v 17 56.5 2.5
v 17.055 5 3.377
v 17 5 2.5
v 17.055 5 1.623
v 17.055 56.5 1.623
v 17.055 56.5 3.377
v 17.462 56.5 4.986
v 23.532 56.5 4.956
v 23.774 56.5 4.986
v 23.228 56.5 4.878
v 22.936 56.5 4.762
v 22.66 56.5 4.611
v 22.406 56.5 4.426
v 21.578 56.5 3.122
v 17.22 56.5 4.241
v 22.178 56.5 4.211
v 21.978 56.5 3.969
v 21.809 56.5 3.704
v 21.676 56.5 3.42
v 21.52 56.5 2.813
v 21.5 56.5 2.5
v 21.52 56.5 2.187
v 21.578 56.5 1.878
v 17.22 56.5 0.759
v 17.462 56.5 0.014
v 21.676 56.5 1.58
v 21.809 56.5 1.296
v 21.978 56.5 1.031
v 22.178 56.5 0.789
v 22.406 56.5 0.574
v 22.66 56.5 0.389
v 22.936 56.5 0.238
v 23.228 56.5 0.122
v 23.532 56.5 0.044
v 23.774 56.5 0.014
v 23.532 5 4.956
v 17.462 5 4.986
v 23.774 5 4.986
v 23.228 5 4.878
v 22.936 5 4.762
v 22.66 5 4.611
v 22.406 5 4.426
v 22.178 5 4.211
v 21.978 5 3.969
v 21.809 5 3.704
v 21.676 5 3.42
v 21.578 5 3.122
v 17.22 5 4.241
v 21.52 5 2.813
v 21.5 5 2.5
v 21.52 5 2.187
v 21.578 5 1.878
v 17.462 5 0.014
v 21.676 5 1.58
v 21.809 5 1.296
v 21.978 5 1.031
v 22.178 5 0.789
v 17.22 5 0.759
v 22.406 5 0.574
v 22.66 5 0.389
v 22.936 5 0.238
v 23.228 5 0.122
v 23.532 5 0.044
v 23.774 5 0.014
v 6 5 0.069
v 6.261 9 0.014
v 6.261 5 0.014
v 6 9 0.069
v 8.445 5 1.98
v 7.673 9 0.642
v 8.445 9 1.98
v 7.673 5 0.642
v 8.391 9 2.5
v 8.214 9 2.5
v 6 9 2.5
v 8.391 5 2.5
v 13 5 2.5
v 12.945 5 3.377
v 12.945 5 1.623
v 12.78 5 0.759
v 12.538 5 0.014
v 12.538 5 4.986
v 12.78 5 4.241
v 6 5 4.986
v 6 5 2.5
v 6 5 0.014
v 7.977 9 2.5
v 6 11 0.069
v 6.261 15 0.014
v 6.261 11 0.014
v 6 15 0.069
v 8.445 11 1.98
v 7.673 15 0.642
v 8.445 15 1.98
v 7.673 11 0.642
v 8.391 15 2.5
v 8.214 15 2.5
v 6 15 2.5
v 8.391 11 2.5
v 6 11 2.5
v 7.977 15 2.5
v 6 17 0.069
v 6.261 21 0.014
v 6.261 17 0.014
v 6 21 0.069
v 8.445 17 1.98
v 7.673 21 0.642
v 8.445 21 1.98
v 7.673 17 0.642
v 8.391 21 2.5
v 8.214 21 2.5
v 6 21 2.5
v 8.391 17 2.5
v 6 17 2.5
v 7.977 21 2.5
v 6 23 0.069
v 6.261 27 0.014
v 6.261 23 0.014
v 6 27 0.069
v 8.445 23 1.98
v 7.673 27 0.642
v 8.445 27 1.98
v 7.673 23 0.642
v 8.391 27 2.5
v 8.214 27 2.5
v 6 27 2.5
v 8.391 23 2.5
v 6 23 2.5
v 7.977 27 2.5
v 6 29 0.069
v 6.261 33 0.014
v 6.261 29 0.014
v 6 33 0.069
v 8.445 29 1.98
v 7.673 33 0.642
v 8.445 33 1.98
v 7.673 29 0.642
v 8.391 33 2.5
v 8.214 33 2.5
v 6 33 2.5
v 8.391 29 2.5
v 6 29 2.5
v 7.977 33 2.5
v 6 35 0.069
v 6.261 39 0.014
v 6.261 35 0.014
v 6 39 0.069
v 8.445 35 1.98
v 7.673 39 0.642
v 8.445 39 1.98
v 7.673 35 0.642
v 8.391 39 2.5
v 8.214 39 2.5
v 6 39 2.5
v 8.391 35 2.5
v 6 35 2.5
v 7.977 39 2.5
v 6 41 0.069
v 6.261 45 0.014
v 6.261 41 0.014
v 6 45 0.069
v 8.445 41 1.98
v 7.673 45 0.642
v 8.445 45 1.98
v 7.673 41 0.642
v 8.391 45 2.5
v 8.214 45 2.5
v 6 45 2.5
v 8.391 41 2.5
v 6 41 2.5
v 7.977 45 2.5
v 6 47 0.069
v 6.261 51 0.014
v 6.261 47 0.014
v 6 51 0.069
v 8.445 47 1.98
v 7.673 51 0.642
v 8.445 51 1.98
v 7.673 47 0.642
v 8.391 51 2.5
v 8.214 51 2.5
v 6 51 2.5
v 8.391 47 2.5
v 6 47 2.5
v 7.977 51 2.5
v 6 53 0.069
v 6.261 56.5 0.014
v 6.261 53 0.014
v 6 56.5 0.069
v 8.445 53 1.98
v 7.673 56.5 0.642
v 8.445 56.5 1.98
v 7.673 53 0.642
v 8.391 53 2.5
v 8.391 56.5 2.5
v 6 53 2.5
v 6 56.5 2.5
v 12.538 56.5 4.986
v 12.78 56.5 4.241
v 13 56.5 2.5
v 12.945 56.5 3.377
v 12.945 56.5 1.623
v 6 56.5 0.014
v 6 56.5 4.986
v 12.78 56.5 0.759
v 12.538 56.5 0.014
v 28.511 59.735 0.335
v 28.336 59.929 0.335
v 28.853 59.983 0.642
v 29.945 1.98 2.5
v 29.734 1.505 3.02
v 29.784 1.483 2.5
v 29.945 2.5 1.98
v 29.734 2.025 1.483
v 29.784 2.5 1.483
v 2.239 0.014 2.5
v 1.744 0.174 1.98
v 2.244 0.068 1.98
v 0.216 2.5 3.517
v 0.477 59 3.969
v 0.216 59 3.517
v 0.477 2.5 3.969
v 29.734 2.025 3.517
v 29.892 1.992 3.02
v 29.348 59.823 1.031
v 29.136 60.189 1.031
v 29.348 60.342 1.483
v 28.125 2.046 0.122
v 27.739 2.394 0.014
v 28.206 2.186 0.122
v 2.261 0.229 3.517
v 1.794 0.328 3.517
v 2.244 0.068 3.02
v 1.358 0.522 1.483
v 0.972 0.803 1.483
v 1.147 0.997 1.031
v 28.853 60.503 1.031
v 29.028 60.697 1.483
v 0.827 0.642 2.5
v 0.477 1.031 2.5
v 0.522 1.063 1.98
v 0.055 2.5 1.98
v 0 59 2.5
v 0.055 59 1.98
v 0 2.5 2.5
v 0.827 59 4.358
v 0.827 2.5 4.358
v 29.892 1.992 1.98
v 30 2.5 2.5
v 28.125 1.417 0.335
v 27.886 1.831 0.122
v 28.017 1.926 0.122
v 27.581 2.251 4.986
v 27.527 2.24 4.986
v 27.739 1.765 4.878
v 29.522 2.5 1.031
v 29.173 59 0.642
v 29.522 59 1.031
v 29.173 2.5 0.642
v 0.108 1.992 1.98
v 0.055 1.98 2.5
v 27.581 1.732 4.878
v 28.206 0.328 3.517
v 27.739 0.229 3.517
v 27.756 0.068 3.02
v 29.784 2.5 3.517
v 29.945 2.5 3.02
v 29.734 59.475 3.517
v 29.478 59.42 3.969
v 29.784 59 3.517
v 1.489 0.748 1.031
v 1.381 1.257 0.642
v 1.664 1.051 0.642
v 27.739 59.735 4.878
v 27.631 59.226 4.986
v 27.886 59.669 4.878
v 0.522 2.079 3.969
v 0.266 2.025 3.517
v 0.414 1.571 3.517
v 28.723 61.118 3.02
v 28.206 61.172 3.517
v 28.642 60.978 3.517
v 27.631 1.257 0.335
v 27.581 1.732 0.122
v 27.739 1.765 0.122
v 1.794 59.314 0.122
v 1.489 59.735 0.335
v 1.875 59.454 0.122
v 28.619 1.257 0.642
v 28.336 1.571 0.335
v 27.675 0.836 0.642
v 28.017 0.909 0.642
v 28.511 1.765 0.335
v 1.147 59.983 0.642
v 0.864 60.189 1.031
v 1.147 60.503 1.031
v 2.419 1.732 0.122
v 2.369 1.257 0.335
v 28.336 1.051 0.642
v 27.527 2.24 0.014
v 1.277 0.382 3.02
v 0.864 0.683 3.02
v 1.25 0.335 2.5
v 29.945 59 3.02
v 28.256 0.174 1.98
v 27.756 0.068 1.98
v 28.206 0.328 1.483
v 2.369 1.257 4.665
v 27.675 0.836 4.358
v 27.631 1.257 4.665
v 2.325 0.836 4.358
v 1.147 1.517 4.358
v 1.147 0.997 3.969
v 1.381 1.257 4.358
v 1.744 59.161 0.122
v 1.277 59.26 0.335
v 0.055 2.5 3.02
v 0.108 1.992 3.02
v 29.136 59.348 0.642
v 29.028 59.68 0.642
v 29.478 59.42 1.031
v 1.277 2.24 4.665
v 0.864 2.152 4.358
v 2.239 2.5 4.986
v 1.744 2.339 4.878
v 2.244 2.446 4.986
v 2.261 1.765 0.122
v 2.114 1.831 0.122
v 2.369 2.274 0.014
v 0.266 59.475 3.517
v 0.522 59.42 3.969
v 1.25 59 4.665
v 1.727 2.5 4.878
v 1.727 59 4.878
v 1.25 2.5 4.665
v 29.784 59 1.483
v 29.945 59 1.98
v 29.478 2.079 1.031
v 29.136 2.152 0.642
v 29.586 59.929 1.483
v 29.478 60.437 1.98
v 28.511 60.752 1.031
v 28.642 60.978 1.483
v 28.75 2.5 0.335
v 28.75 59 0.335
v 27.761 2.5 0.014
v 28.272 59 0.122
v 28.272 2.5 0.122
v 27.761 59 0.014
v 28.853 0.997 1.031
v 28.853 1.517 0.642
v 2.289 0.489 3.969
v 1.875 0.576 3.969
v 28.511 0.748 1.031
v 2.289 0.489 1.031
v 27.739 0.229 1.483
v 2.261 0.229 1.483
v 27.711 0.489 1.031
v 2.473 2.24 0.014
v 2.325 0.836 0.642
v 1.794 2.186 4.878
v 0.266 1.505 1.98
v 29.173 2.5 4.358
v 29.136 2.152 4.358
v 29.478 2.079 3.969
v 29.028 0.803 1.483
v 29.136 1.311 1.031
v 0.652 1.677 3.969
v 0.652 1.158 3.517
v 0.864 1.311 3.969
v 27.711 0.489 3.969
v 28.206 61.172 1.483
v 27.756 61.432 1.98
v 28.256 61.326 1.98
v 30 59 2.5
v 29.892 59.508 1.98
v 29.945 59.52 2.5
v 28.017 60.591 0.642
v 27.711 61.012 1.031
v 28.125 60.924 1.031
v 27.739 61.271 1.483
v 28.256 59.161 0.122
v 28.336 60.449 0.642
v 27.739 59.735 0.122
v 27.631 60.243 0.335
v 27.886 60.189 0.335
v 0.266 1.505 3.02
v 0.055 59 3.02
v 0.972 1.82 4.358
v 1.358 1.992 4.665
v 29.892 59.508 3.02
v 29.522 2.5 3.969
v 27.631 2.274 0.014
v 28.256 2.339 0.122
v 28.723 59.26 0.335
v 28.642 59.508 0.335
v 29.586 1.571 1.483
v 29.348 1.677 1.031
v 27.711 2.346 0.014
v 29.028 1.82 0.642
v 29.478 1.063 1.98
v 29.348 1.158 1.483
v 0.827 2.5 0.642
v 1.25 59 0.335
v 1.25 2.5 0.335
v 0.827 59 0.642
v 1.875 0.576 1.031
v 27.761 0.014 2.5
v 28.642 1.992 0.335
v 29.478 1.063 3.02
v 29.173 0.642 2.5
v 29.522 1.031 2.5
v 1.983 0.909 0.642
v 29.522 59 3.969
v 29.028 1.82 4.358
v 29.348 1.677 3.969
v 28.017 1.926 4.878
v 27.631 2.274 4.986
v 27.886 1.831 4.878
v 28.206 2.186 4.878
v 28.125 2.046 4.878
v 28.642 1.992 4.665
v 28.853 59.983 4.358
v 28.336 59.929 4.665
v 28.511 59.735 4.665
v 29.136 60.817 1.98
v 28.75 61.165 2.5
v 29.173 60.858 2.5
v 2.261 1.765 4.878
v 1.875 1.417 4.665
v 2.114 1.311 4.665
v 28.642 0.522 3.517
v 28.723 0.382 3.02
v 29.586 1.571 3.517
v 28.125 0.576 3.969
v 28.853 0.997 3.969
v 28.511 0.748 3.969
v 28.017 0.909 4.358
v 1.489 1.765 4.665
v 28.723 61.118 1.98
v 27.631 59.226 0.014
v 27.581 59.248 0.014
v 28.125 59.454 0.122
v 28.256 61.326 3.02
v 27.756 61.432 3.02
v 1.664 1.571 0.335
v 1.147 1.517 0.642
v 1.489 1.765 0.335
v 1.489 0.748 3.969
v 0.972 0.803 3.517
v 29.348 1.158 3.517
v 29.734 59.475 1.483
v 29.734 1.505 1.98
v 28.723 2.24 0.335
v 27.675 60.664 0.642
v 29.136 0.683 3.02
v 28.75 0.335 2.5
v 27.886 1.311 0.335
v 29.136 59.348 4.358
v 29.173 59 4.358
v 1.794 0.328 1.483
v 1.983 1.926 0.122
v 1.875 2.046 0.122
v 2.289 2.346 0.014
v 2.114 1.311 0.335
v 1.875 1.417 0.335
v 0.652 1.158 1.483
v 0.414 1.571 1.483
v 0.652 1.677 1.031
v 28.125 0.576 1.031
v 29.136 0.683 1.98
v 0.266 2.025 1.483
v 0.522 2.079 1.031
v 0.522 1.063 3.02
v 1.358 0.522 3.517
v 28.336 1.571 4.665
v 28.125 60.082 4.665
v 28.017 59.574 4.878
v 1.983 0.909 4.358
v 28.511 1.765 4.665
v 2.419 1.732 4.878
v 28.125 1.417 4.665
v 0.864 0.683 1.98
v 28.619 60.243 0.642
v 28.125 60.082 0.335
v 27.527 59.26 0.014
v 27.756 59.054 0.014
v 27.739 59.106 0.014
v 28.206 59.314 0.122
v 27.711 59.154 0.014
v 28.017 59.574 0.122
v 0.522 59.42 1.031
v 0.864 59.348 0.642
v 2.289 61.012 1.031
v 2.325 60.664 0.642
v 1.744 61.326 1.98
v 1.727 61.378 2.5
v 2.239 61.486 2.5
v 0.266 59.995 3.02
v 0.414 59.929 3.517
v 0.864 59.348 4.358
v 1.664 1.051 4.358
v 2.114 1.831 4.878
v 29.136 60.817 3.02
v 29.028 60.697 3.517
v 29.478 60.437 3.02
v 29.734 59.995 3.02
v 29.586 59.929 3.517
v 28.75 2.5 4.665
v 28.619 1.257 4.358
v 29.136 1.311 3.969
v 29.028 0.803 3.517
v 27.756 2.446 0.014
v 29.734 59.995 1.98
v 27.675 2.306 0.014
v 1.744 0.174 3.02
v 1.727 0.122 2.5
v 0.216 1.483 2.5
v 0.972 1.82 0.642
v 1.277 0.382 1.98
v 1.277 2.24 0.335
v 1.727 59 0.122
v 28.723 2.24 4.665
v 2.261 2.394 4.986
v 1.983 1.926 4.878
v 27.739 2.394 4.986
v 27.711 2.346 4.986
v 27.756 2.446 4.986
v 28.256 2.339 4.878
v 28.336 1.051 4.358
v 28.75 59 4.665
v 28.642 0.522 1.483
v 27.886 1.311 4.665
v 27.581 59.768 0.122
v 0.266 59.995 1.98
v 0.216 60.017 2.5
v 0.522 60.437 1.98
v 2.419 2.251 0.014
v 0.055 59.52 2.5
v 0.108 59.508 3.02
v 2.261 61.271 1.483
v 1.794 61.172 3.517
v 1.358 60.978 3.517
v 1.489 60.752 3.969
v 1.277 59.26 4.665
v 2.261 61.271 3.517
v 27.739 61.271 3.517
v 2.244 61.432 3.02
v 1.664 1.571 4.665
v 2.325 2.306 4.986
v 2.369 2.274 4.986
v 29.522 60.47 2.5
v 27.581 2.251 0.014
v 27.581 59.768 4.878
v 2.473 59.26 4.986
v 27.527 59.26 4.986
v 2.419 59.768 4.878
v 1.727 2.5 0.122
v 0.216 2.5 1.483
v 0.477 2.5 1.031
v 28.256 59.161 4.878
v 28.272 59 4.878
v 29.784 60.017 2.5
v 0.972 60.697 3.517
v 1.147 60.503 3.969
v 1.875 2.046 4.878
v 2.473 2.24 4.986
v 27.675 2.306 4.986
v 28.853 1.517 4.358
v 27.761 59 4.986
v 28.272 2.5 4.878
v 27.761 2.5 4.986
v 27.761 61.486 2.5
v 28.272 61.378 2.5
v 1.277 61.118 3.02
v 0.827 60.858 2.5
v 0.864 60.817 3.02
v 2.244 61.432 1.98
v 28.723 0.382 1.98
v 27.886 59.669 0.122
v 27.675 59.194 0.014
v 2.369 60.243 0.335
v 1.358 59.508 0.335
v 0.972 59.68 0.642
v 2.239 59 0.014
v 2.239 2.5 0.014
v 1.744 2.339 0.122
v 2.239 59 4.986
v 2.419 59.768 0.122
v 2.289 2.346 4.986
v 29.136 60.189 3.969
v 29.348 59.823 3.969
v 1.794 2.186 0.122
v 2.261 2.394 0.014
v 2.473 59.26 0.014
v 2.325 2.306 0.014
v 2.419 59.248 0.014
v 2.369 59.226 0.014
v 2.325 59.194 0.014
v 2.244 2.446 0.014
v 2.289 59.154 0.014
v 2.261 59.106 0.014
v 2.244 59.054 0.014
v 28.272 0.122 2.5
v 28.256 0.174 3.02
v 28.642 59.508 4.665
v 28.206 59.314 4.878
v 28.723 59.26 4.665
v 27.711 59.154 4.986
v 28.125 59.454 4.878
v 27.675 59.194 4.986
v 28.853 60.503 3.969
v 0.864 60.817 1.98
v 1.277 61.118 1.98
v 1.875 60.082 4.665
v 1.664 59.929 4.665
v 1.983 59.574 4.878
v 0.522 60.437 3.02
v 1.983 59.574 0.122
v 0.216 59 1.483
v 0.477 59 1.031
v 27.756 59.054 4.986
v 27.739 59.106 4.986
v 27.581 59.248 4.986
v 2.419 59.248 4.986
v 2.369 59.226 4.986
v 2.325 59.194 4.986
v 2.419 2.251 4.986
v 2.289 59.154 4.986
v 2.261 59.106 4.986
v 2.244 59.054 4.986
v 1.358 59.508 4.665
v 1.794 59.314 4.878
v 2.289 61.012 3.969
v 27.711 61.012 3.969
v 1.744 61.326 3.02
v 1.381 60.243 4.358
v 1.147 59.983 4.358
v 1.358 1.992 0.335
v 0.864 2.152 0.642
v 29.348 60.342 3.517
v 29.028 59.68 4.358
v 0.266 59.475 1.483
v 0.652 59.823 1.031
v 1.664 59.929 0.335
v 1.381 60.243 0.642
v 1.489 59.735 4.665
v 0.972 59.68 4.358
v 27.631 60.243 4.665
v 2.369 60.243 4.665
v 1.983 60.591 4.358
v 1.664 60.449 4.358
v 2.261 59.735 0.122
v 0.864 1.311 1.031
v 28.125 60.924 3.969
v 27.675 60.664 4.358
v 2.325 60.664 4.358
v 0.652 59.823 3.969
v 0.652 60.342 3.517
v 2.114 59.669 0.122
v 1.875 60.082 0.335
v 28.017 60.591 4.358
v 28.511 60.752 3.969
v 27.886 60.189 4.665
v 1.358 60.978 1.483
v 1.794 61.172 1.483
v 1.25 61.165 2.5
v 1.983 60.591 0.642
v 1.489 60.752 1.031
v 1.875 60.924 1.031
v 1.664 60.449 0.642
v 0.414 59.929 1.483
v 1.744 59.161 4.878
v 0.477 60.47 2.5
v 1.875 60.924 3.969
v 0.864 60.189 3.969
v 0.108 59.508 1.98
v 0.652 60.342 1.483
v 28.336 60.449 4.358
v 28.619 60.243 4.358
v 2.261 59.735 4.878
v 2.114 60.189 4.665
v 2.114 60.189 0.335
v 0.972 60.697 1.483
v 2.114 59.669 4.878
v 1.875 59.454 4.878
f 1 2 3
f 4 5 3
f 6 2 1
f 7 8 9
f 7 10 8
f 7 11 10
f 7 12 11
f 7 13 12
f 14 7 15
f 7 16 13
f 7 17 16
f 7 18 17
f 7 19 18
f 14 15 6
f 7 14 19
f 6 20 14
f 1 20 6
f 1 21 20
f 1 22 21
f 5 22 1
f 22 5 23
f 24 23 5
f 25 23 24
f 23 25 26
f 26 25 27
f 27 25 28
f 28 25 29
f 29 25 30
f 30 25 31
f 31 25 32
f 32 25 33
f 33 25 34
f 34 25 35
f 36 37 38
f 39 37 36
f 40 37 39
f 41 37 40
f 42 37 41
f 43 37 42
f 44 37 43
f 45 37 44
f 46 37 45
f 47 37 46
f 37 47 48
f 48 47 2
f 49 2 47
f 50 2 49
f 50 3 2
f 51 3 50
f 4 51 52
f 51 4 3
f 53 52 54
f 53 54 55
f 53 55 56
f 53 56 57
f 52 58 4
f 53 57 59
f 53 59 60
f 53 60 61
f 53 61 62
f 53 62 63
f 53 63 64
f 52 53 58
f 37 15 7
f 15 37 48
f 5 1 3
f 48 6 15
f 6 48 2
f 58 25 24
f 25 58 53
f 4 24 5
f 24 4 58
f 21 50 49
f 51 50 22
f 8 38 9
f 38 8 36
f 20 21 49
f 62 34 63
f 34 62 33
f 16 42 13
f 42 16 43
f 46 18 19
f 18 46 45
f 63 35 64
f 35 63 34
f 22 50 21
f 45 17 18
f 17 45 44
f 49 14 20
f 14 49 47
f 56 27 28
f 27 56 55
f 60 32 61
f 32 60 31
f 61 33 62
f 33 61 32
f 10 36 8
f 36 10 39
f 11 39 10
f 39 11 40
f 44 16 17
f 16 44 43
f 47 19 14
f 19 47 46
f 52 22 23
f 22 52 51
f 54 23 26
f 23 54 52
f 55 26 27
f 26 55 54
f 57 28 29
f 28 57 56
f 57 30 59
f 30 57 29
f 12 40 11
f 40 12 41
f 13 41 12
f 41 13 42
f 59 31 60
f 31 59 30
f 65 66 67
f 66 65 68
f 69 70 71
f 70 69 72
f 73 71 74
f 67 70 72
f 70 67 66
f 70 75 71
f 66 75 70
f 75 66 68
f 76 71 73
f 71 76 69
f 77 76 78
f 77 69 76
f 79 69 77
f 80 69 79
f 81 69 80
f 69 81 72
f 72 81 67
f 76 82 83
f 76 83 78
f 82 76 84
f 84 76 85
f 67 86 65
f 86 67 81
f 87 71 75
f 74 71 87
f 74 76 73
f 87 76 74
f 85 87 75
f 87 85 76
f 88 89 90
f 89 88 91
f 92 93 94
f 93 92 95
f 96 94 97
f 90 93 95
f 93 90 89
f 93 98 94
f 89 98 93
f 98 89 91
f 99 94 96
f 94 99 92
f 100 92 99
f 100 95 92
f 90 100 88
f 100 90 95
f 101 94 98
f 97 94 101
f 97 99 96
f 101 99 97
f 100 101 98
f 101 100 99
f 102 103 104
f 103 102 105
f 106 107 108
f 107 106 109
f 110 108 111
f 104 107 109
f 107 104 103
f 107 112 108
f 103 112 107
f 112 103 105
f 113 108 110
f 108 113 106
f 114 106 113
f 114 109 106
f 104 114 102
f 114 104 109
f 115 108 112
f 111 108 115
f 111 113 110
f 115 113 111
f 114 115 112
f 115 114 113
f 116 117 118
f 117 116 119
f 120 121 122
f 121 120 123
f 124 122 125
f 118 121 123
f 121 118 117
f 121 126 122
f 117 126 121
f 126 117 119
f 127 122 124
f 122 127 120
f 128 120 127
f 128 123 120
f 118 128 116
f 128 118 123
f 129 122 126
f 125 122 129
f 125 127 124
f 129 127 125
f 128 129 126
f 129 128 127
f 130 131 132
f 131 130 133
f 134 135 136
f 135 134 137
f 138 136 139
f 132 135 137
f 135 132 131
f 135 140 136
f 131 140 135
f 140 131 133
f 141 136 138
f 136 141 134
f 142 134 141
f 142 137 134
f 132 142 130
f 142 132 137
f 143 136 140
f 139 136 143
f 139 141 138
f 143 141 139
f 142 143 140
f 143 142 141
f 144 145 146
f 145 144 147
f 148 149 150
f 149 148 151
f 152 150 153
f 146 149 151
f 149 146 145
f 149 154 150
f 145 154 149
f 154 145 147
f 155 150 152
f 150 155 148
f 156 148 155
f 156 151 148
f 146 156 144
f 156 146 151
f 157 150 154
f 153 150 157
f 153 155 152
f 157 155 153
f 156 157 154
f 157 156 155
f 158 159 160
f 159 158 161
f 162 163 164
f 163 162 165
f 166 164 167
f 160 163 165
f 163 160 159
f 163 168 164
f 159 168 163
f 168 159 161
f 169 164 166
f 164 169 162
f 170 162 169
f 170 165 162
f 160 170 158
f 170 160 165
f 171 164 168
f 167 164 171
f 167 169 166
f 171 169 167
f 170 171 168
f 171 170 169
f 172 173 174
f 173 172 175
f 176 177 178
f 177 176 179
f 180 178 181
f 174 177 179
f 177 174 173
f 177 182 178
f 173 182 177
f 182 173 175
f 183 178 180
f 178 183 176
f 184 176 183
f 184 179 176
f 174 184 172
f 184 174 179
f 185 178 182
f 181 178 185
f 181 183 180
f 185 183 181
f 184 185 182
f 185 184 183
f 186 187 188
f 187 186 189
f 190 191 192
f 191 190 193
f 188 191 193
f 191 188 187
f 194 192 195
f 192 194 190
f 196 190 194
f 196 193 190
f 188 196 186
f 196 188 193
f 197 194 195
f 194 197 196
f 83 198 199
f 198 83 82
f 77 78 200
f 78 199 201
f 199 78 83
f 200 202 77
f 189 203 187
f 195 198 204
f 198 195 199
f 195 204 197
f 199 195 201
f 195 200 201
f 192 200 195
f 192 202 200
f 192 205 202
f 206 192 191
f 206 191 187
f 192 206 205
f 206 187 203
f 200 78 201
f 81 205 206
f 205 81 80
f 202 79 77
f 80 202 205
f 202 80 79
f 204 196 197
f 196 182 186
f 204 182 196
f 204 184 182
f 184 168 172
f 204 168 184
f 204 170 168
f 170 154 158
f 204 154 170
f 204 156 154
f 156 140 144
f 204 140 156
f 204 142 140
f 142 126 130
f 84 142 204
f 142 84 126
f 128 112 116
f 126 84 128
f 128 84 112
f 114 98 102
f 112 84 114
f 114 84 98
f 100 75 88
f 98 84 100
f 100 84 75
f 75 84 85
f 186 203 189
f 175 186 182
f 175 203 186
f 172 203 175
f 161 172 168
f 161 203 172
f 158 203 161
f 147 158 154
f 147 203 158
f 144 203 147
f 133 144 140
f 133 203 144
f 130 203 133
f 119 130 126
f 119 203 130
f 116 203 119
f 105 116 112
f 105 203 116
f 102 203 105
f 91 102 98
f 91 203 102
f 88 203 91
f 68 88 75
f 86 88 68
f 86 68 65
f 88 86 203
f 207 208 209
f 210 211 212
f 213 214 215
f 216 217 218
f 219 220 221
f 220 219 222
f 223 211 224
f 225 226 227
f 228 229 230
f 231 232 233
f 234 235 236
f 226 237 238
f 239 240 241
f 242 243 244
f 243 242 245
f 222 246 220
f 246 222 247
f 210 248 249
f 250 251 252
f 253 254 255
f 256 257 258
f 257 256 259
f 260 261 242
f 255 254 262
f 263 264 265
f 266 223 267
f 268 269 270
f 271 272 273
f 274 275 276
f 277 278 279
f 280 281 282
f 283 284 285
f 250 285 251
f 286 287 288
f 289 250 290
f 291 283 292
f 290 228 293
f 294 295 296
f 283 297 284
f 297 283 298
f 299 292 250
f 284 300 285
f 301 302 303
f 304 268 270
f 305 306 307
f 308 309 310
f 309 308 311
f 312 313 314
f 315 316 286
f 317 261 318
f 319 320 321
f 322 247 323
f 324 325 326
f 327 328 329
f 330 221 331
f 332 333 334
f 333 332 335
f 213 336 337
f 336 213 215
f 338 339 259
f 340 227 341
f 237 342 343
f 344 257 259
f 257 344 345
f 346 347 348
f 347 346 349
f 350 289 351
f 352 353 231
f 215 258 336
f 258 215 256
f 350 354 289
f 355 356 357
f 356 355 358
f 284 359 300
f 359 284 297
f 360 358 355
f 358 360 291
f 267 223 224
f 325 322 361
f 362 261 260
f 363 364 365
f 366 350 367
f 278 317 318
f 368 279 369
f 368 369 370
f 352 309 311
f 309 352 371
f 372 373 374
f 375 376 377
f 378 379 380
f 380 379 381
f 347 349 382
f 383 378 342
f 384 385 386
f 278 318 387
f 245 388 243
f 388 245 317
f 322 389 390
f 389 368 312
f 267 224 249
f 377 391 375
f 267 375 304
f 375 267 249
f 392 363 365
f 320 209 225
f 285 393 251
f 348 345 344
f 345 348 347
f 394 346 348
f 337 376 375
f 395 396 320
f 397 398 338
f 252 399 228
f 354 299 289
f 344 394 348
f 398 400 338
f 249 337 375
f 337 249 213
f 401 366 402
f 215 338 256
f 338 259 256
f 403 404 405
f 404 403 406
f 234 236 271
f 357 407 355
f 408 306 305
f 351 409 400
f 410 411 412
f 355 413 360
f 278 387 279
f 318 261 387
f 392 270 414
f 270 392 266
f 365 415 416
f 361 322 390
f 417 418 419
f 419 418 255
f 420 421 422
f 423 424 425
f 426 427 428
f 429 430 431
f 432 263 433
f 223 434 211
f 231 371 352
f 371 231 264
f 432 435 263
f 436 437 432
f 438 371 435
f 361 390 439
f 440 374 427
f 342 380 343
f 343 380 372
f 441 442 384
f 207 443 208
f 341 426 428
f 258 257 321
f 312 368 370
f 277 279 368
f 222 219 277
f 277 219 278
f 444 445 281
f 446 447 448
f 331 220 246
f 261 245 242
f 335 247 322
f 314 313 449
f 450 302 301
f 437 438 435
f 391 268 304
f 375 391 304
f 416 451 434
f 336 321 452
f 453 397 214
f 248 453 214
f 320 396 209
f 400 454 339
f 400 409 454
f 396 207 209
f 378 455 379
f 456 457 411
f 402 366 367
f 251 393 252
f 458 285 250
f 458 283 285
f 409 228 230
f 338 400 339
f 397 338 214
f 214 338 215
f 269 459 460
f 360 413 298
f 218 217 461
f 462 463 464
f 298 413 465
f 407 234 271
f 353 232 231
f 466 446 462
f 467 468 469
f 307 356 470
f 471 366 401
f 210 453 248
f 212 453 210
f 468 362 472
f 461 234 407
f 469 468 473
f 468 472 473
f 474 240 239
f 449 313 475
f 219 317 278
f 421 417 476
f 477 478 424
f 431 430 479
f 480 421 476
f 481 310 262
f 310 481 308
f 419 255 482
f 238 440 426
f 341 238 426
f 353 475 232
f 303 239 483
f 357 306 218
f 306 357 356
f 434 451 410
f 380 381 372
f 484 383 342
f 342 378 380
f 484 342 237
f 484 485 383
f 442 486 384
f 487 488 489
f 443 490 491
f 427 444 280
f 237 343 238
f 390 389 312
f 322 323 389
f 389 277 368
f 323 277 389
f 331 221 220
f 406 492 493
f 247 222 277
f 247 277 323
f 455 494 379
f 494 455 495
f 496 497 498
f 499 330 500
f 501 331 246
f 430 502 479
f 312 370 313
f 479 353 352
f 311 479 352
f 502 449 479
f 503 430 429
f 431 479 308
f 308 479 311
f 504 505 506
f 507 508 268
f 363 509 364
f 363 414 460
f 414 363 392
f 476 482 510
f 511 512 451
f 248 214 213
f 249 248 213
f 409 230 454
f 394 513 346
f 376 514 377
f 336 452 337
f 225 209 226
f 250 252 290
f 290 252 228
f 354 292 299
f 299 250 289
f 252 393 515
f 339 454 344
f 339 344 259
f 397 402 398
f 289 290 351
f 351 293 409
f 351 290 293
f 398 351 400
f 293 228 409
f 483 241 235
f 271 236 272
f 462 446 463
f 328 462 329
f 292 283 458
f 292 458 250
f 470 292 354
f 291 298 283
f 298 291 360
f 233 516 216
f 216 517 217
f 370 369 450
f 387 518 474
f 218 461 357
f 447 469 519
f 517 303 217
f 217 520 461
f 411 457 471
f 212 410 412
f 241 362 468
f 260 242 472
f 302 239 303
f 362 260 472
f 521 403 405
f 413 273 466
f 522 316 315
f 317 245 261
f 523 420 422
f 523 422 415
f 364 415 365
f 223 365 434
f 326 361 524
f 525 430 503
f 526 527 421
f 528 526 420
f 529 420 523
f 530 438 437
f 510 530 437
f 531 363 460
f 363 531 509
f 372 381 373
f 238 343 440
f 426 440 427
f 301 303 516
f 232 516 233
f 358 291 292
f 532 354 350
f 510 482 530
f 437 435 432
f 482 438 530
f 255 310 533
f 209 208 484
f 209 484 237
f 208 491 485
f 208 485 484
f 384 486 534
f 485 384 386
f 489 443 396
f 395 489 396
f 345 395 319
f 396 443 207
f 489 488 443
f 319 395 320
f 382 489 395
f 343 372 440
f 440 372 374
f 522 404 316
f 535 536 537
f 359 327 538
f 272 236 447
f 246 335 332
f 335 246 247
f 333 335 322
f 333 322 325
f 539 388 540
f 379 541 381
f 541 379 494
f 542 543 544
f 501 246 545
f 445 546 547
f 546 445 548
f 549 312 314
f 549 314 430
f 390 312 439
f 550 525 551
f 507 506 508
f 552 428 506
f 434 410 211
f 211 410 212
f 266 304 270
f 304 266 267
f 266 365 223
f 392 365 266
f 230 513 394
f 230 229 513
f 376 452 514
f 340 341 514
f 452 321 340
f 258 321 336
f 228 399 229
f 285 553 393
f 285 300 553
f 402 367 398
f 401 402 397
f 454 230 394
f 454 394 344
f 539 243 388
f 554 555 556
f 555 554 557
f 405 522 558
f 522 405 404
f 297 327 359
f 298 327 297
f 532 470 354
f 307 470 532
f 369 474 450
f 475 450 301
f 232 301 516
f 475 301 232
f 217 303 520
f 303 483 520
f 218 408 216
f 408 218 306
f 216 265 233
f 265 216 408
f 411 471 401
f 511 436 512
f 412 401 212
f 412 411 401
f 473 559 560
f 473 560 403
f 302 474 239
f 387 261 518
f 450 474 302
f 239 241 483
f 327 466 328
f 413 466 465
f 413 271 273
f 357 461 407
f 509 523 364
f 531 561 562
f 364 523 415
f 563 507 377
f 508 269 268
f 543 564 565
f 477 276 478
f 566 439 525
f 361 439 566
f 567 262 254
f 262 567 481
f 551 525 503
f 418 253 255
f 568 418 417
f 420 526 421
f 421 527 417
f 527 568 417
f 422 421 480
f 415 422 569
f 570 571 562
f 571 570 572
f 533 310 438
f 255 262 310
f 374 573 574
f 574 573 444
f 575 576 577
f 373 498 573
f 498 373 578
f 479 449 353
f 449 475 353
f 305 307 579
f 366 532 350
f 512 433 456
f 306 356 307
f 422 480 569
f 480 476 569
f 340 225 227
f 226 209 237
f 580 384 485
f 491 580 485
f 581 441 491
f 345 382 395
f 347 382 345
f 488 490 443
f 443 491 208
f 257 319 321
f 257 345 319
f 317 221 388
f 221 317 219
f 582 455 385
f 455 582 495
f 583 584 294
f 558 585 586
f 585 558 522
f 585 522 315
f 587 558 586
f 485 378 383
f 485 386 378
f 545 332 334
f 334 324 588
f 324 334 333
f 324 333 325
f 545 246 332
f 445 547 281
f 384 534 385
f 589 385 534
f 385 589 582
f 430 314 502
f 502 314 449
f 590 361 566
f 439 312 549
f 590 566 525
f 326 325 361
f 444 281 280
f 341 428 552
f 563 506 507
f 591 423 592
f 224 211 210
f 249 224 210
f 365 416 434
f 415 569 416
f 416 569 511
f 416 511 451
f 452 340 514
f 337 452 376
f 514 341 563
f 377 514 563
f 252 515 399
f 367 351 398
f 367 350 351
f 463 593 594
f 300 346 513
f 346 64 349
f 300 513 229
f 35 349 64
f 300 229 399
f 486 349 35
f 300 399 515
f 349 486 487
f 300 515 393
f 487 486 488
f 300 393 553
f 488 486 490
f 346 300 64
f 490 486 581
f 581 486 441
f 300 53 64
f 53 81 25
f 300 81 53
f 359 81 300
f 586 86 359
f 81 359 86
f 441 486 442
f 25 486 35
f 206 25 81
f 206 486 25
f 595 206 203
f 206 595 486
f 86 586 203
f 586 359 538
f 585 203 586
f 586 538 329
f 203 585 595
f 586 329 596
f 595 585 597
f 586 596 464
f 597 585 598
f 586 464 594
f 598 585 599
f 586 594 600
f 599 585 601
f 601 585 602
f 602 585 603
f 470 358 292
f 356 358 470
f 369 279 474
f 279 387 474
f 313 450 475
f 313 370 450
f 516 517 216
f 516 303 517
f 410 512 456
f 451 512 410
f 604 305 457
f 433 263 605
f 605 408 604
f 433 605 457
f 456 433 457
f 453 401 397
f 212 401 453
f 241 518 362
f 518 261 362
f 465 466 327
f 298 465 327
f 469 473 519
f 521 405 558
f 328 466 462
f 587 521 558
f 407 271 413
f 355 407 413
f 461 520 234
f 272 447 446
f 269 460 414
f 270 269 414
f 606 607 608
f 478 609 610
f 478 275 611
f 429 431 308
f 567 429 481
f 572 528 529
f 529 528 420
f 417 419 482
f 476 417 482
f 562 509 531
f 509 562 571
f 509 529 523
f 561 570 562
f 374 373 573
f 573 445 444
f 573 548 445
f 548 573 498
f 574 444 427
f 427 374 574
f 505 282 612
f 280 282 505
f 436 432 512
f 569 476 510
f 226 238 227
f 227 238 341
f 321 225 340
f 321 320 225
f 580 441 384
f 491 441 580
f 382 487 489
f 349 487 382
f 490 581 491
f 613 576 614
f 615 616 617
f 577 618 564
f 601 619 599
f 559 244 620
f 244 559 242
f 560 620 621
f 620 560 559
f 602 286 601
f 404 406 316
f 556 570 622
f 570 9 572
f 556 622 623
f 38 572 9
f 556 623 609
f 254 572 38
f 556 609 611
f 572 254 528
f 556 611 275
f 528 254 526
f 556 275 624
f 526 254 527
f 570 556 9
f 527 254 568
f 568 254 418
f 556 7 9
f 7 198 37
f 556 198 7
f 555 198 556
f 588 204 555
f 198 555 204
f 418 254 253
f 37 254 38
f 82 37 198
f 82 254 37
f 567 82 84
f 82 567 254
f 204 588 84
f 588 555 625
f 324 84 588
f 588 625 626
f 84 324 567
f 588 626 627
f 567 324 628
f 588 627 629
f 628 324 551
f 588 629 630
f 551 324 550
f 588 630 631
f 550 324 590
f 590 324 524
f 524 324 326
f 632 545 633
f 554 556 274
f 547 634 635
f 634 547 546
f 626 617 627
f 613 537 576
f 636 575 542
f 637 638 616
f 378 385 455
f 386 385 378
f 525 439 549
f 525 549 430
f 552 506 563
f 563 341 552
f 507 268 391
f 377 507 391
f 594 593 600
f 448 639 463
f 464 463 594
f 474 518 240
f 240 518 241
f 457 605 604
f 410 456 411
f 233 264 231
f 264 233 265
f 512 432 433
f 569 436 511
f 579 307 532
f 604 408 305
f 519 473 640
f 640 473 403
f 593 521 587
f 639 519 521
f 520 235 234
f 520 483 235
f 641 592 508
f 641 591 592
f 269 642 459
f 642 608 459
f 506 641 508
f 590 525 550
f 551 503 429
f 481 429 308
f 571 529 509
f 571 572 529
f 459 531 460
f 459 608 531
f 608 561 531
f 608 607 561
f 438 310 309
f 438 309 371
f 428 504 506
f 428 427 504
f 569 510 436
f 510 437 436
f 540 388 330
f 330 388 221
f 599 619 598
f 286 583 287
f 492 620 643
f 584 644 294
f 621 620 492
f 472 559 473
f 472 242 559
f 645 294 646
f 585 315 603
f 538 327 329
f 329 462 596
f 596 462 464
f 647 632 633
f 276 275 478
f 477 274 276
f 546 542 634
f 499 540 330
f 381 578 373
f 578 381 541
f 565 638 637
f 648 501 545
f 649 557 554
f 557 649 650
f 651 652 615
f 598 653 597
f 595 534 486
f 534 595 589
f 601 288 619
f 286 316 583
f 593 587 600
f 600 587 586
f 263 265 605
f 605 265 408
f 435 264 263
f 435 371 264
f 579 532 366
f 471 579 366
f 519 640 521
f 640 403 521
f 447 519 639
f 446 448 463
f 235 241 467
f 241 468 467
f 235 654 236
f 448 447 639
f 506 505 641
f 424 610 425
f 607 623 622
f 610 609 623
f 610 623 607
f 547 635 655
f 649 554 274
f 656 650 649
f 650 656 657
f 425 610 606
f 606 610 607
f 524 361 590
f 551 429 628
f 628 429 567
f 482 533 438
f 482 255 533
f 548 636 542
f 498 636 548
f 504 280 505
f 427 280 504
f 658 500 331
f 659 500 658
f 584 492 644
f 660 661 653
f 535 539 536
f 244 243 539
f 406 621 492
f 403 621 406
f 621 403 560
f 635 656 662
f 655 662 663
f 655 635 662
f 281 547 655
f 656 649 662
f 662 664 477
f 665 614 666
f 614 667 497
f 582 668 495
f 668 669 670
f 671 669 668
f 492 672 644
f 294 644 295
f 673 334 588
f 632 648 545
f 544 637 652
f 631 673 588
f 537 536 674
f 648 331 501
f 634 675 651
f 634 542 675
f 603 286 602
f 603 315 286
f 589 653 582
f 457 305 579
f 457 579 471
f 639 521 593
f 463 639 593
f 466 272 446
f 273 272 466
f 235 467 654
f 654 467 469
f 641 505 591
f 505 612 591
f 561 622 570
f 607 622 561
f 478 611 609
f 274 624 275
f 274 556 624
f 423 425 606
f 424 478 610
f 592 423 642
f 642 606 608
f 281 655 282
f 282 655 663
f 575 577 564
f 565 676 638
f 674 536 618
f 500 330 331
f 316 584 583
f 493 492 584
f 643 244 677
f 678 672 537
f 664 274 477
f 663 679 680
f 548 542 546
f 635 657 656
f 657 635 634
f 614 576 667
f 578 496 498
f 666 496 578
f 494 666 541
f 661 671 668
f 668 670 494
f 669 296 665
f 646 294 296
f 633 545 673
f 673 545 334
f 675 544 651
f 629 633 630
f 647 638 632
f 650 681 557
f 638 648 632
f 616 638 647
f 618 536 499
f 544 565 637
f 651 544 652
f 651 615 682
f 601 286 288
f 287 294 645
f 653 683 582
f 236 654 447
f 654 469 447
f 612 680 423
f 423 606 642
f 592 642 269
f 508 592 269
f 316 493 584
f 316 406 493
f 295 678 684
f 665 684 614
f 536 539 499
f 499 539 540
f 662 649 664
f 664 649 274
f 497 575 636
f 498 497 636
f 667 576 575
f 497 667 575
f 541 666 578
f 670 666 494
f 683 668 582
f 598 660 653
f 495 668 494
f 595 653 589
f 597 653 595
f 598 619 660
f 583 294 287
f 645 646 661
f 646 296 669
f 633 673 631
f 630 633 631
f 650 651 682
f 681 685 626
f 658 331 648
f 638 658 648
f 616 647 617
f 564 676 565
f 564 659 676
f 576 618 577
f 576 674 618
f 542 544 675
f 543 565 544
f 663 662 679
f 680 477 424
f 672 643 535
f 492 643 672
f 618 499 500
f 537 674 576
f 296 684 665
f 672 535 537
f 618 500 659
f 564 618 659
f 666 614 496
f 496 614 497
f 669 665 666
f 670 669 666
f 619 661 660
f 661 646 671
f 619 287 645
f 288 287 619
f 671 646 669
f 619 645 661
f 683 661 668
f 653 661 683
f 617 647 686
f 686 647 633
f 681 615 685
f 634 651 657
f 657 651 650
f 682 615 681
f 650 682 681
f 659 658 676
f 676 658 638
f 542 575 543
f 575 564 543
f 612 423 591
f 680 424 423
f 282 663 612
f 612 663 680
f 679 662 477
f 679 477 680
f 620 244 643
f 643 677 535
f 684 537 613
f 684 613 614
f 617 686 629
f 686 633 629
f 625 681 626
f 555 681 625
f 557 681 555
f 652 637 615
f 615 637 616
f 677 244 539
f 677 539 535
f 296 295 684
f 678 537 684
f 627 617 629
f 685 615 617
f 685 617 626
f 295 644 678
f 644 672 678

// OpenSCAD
// file: variables.scad
// Set variables related to the creation of the rod and
// strap holder. All measurements are in mm

// Variables related to Rod
rod_r=7; //rod radius
rod_l=140; //rod length
rod_g=5; //rod groove radius
rod_res=8; //rod resolution

rod_groove_l=[7,7,7];//
rod_groove_p=[12,22,32];//
rod_groove_array=3;
rod_in_strap_space=0;//spacing between rod and the curve

// Variables related to strap holder
strap_holder_w=61.5; // strap holder width
strap_holder_t=1.5; //strap holder thickness
strap_holder_l=90; //strap holder length
holder_w=20; //curved holder width
strap_w=51.5; //velcro strap width
strap_t=4.5; //velcro strap groove thickness
curve_sup_t=1.5; //groove support thickness
curve_t=4; //curve thickness

groov_p_y=[4,12,24]; //y-position of strap grooves 

groov_array_length=2;//length of grooves y-position array 
curve_op=20;//curve upper opening window width 

// Useful calculations (Do not modify)
groov_p_x=(strap_holder_w-strap_w)/2;

curve_or=rod_r+rod_in_strap_space+curve_t; //curve outer radius
curve_ir=rod_r+rod_in_strap_space; //curve inner radius
window_y_p=(strap_holder_w-curve_op)/2;//y-position of window
// main file
/*
the buckle design part are
1- the body is a soft edges cubic shape takes its width from "variables.h" to keep in shape with rest of parts,and its length and hight are also from the "variables.h"
2- the cut inside the buckle is made of  half cylinder with some 4 teeth,
it was made by designing half cylinder and have 4 triangular cuts in it "the triange is a cylinder with $fn=3"

*/
include <variables.scad>;

buckle_h=5;//buckle hight
buckle_l=30;//buckle length
tooth_l=4;//the triangular tooth length
tooth_g=2;//gap between the teeth
tooth_y_p=[7,13,23,29];//tooth y posisioning
tooth_space=tooth_g+tooth_l;
tooth_num=strap_w/tooth_space;
module buk_clear1(){//the cut design generator

difference(){//the curvy slot
    translate([0,0,(buckle_h/2)])rotate([-90,0,0])cylinder(r=(buckle_h/2)+strap_t,h=strap_w,$fn=50);//the cylinder
    
    
    translate([0,0,-strap_t])cube([(buckle_h/2)+strap_t,strap_w,(buckle_h/2)+strap_t+(buckle_h/2)+strap_t*2]);

   translate([0,0,(buckle_h/2)])rotate([-90,0,0])cylinder(r=(buckle_h/2),h=strap_w,$fn=50);//the cylinder

} //end of the trisangles cut
}







module buk_clear2(){//the cut design generator

difference(){//as shown before it is a cylinder with 4 triangular cuts
    translate([0,0,(buckle_h/2)])rotate([-90,0,0])cylinder(r=(buckle_h/2)+strap_t,h=strap_w,$fn=50);//the cylinder
    
    
    //the triangular cuts shifted in place
    for(space=[0:1:tooth_num]){
    
translate([0,tooth_space*space,(buckle_h/2)])difference(){
rotate([-90,0,0])rotate([0,0,60])cylinder(r=(buckle_h/2),h=tooth_l,$fn=10);
    translate([-buckle_h/2,0,0])cube([buckle_h,tooth_l,buckle_h/2]);
}
    }
    translate([0,0,-strap_t])cube([(buckle_h/2)+strap_t,strap_w,(buckle_h/2)+strap_t+(buckle_h/2)+strap_t*2]);

} //end of the trisangles cut
}

difference(){
hull(){//this is the cube with soft edges done by "hull" between 4 spheres seperated in to its corners
    
    translate([.5*buckle_h,.5*buckle_h,.5*buckle_h])sphere(.5*buckle_h,$fn=30);
    
    translate([.5*buckle_h,strap_holder_w-.5*buckle_h,.5*buckle_h])sphere(.5*buckle_h,$fn=30);
    
    translate([buckle_l-.5*buckle_h,strap_holder_w-.5*buckle_h,.5*buckle_h])sphere(.5*buckle_h,$fn=30);
    
    translate([buckle_l-.5*buckle_h,.5*buckle_h,.5*buckle_h])sphere(.5*buckle_h,$fn=30);
}
   

   translate([buckle_l*.8,groov_p_x,0]) buk_clear1();// first cut
    translate([buckle_l*.2,groov_p_x,0]) mirror([1,0,0])buk_clear2();//the other cut shifted and mirrored
}


//buk_clear();

/*
difference(){
translate([0,tooth_space*space,(buckle_h/2)])rotate([-90,0,0])rotate([0,0,60])cylinder(r=(buckle_h/2),h=tooth_l,$fn=10);
    translate([-buckle_h/2,0,0])cube([buckle_h,tooth_l,buckle_h/2]);
}
*/
